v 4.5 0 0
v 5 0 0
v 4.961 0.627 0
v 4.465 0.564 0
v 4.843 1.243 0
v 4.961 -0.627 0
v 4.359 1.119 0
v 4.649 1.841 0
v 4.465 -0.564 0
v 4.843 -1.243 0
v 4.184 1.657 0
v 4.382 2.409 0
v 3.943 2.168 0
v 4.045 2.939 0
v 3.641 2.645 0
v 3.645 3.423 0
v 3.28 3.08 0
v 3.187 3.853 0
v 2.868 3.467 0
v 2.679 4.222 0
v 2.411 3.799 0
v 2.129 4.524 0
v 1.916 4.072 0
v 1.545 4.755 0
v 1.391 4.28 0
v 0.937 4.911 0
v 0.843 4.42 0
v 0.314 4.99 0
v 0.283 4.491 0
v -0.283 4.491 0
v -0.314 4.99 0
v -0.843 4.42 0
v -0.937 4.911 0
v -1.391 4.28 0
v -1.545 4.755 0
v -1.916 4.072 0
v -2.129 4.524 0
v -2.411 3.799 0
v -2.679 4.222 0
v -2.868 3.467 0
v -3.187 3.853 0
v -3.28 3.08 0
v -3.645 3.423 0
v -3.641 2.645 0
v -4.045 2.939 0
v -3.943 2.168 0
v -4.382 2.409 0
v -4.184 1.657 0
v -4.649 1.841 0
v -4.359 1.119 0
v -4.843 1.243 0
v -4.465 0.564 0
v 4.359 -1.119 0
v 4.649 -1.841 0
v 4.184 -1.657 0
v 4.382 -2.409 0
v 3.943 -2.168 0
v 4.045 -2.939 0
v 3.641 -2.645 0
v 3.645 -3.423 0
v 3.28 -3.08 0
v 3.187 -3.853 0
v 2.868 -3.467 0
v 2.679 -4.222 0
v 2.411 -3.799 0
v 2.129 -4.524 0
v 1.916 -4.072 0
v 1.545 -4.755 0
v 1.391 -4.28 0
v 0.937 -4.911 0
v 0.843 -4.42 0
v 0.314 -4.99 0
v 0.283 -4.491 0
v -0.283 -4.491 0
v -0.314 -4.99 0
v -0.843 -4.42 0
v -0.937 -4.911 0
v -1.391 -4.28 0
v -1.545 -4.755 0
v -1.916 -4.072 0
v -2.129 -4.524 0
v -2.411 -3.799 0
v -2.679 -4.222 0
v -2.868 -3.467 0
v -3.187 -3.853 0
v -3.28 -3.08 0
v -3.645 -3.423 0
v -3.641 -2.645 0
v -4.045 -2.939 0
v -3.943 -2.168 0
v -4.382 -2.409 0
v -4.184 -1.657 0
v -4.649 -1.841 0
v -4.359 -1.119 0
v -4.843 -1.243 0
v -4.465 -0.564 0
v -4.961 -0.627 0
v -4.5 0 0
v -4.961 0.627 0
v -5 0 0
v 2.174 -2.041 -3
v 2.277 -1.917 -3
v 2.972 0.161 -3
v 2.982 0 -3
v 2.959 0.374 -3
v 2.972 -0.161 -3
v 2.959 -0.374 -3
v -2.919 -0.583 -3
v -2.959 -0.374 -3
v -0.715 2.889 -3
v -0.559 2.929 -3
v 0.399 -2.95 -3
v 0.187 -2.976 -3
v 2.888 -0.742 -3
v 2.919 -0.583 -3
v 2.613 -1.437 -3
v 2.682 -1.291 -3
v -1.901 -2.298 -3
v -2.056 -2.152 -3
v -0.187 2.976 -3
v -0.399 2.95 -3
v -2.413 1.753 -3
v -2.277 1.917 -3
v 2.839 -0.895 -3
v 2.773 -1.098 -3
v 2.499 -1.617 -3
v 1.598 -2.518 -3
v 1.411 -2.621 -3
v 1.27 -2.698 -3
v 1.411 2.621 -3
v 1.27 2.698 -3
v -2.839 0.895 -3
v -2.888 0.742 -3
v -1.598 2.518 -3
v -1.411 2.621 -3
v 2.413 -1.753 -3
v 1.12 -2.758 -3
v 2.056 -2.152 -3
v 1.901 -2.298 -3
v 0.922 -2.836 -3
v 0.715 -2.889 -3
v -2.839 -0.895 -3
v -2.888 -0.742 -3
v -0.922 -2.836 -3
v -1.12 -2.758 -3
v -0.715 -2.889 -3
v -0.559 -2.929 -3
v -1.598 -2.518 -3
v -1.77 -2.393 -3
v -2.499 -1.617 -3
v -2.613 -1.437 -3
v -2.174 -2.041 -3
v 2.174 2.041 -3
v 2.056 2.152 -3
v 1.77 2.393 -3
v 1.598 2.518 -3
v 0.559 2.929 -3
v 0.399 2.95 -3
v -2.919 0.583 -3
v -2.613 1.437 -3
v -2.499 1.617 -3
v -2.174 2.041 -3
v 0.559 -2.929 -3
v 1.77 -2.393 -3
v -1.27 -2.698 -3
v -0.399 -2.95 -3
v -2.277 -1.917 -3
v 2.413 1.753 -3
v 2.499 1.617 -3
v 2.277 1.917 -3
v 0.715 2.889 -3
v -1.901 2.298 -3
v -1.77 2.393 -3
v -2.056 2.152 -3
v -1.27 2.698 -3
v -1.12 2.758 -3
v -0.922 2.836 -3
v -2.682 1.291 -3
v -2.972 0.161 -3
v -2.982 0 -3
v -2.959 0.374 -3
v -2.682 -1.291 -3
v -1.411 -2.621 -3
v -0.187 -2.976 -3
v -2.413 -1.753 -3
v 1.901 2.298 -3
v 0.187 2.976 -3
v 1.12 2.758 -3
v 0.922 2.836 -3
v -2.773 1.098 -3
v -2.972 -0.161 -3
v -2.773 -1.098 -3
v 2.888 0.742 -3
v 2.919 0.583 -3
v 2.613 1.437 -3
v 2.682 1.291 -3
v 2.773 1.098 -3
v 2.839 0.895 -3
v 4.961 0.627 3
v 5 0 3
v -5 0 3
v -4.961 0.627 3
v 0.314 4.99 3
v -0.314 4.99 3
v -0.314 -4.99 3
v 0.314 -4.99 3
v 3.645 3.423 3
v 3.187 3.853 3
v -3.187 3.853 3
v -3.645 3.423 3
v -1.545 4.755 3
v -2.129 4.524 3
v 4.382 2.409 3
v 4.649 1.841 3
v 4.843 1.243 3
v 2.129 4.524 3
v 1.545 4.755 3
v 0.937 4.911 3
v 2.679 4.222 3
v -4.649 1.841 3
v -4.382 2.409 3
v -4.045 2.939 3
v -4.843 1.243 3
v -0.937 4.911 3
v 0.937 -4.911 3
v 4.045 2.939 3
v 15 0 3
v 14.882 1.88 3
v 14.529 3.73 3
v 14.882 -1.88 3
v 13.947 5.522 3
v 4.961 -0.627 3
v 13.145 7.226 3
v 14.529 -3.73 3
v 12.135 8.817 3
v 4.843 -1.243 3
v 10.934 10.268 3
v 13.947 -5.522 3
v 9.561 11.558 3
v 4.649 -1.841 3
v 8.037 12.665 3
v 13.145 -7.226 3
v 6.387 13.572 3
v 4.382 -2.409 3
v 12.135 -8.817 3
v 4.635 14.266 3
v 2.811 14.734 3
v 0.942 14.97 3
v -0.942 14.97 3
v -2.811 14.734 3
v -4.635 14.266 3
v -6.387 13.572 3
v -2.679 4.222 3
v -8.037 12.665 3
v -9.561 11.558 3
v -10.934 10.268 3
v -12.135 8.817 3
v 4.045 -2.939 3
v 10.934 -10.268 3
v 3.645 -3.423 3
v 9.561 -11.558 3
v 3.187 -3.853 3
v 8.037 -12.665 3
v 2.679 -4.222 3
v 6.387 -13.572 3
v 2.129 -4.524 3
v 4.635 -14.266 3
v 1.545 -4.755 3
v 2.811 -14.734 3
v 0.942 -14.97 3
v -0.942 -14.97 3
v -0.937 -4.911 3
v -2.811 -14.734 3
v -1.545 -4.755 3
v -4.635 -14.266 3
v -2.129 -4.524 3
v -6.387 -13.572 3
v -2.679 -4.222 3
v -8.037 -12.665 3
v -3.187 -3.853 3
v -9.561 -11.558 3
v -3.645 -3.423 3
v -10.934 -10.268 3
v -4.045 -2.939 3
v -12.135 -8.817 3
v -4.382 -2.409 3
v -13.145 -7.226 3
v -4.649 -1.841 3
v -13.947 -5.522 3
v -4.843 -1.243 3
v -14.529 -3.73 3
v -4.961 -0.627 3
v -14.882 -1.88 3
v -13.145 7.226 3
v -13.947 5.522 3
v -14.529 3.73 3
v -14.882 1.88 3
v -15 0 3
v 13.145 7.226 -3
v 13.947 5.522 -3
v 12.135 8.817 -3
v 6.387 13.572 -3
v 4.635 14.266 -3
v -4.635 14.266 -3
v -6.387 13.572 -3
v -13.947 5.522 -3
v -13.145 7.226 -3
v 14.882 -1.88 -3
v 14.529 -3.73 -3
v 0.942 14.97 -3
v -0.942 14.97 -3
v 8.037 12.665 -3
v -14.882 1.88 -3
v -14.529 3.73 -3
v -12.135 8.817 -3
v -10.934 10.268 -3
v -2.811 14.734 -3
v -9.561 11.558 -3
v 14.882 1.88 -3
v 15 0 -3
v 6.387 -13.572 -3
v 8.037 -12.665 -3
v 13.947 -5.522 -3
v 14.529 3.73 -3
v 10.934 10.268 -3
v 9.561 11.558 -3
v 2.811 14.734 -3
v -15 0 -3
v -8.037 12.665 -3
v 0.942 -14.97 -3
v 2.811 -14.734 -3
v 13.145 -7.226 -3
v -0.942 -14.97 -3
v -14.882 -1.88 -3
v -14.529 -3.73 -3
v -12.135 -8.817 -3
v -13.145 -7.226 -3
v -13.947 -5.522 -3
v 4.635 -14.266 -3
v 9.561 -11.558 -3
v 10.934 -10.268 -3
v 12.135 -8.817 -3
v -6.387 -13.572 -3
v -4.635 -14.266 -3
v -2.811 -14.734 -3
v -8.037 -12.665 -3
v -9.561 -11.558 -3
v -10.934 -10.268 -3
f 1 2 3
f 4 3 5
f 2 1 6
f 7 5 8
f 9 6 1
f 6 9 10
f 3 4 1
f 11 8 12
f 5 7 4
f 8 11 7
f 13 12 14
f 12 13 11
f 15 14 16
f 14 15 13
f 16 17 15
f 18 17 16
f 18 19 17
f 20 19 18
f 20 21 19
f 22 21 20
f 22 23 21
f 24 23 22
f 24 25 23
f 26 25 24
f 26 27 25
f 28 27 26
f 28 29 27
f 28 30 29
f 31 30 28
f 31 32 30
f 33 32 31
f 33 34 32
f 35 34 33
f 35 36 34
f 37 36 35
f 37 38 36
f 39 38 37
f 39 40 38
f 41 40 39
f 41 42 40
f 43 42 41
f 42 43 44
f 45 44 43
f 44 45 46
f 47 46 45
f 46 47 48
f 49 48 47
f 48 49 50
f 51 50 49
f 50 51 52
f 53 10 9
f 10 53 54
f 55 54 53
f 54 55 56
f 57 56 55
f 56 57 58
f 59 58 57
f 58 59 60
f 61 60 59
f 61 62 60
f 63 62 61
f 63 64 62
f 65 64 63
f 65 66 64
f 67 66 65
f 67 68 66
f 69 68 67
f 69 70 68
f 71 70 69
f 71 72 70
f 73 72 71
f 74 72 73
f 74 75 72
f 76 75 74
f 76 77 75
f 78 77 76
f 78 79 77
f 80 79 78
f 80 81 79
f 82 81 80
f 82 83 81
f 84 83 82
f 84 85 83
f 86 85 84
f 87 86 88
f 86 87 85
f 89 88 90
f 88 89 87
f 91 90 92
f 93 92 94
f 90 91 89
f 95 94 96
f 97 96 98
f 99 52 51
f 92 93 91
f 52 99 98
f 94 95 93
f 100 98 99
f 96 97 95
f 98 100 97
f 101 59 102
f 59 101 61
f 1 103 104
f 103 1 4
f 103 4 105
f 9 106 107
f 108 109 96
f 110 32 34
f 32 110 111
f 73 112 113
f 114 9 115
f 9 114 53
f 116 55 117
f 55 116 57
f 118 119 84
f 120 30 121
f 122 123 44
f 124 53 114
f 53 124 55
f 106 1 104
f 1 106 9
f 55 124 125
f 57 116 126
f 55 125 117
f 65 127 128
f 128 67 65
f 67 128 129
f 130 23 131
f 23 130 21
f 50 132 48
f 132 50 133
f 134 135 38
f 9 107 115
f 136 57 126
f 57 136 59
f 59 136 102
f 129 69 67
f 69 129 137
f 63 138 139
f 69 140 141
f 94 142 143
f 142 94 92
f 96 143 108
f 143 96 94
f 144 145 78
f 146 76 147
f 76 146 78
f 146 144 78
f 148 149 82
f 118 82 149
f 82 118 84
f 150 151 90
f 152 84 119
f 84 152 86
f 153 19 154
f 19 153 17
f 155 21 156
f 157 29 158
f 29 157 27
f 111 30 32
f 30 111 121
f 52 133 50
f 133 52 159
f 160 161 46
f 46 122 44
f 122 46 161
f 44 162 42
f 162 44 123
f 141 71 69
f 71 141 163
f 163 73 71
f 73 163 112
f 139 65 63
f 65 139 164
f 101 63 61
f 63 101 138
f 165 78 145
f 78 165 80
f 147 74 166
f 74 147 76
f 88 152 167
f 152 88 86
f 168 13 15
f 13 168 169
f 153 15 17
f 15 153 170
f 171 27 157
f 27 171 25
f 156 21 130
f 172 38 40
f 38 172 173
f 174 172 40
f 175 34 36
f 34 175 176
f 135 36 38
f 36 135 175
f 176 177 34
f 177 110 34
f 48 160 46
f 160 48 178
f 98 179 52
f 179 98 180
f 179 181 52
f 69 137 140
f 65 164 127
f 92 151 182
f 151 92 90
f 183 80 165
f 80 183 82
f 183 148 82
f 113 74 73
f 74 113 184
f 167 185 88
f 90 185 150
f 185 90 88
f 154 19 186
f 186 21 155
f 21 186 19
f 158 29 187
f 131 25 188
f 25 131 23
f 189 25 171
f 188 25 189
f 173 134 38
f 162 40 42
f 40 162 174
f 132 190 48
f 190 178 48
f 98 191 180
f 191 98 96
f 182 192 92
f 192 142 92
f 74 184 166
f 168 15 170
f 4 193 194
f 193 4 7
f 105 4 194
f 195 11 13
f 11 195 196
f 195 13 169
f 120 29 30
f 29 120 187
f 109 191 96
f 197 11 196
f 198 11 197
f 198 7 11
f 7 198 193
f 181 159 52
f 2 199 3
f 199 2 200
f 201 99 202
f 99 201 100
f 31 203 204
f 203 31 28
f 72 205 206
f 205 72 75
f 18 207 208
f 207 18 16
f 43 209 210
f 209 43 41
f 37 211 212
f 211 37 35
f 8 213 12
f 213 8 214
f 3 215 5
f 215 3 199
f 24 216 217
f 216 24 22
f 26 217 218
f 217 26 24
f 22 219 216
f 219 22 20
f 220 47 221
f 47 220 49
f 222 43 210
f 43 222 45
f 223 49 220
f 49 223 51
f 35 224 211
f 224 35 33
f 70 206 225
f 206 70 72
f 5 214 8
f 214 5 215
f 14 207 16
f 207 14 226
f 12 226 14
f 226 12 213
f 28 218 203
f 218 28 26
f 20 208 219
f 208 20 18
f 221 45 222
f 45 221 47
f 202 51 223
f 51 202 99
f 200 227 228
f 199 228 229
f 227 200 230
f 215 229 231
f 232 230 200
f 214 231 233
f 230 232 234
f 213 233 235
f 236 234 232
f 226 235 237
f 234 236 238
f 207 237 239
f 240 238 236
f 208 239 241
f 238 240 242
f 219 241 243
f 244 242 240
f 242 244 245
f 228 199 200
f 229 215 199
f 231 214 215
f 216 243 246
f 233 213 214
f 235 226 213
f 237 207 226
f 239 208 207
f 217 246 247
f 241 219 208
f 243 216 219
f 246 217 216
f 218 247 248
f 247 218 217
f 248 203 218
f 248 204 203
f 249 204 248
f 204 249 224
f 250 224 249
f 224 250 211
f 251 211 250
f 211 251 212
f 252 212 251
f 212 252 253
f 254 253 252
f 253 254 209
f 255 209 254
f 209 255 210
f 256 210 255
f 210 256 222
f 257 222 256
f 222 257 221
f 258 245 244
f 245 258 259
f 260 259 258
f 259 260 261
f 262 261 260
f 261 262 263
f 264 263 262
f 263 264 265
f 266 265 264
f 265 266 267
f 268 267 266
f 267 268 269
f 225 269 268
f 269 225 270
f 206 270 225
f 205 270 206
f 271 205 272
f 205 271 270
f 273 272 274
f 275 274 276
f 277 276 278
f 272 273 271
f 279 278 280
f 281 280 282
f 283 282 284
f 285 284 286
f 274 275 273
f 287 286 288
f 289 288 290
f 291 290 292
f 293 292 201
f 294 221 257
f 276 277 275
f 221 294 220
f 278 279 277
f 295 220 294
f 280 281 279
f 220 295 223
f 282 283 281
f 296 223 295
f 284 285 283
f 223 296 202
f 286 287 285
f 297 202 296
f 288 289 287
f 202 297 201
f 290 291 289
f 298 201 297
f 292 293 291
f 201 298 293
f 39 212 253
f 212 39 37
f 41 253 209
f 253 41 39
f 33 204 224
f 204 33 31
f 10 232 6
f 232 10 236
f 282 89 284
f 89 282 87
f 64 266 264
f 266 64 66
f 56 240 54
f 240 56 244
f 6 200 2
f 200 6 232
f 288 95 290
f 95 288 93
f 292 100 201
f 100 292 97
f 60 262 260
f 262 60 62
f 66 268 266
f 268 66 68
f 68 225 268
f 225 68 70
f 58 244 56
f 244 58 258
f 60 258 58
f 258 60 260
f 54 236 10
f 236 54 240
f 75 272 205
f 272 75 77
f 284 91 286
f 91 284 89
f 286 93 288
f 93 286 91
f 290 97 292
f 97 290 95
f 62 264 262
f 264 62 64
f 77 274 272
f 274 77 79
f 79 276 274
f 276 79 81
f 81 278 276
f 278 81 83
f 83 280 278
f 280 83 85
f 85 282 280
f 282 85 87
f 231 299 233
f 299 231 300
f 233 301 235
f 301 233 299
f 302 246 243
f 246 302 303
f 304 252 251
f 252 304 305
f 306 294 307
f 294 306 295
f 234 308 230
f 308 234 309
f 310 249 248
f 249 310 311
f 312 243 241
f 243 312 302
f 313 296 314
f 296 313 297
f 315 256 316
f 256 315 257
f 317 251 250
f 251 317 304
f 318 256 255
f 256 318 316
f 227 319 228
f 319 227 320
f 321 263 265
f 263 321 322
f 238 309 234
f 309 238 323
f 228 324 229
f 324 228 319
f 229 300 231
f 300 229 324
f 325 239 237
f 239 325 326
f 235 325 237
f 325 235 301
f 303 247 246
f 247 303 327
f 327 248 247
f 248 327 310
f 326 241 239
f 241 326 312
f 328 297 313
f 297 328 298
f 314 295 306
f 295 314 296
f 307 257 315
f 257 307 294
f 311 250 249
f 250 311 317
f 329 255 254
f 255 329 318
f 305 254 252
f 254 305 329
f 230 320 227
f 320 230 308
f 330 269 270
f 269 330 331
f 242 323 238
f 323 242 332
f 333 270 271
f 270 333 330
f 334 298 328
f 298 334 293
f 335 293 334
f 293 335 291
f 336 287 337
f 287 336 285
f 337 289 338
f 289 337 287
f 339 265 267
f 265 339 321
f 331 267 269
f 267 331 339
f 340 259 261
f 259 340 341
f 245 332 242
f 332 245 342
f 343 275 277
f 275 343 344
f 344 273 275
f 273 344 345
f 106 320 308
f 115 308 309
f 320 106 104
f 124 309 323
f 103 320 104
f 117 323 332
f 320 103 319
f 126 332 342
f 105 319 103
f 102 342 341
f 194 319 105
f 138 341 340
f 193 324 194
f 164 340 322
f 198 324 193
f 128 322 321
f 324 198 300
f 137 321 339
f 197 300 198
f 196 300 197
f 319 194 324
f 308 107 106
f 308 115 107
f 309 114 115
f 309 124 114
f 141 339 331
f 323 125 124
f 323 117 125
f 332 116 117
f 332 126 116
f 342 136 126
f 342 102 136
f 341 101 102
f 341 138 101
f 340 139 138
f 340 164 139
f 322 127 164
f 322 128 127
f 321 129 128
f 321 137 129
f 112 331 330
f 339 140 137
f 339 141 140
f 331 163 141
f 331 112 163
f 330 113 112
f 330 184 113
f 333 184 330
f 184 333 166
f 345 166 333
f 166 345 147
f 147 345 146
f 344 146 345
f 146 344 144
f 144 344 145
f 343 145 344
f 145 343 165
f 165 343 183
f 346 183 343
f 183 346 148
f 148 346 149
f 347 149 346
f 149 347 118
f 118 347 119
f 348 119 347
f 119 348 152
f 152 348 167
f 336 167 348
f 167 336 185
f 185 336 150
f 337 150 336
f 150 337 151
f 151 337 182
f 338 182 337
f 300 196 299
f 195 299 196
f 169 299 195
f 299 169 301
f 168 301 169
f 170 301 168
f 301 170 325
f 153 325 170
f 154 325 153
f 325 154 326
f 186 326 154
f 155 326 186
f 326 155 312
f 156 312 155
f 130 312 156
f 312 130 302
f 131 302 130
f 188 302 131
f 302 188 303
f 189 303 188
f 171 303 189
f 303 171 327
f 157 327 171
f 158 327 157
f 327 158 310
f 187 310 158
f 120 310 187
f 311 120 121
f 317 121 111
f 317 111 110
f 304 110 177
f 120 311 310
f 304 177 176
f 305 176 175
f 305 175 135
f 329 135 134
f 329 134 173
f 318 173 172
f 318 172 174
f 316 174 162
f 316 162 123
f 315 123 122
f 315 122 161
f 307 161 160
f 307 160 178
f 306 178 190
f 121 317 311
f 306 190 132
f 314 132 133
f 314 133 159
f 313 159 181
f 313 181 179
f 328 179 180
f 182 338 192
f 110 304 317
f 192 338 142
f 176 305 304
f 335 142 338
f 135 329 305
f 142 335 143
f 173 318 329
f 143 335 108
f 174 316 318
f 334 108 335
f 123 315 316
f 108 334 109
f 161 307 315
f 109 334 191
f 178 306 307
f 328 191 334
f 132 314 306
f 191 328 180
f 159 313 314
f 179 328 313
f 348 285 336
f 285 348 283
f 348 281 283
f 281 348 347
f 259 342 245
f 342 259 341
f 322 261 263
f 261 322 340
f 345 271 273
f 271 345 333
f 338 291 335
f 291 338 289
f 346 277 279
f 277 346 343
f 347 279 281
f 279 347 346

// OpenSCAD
$fn = 50;


difference() {
	union() {
		translate(v = [0, 0, -3.0000000000]) {
			cylinder(h = 6, r = 15.0000000000);
		}
	}
	union() {
		translate(v = [0, 0, 0]) {
			rotate(a = [0, 0, 0]) {
				difference() {
					union() {
						translate(v = [0, 0, -6.0000000000]) {
							cylinder(h = 6, r = 2.2500000000);
						}
						translate(v = [0, 0, -4.2000000000]) {
							cylinder(h = 4.2000000000, r1 = 2.3750000000, r2 = 4.5000000000);
						}
						translate(v = [0, 0, -6.0000000000]) {
							cylinder(h = 6, r = 2.3750000000);
						}
						translate(v = [0, 0, -6.0000000000]) {
							cylinder(h = 6, r = 2.2500000000);
						}
					}
					union();
				}
			}
		}
		#cylinder(h = 3, r = 5.0000000000);
	}
}
